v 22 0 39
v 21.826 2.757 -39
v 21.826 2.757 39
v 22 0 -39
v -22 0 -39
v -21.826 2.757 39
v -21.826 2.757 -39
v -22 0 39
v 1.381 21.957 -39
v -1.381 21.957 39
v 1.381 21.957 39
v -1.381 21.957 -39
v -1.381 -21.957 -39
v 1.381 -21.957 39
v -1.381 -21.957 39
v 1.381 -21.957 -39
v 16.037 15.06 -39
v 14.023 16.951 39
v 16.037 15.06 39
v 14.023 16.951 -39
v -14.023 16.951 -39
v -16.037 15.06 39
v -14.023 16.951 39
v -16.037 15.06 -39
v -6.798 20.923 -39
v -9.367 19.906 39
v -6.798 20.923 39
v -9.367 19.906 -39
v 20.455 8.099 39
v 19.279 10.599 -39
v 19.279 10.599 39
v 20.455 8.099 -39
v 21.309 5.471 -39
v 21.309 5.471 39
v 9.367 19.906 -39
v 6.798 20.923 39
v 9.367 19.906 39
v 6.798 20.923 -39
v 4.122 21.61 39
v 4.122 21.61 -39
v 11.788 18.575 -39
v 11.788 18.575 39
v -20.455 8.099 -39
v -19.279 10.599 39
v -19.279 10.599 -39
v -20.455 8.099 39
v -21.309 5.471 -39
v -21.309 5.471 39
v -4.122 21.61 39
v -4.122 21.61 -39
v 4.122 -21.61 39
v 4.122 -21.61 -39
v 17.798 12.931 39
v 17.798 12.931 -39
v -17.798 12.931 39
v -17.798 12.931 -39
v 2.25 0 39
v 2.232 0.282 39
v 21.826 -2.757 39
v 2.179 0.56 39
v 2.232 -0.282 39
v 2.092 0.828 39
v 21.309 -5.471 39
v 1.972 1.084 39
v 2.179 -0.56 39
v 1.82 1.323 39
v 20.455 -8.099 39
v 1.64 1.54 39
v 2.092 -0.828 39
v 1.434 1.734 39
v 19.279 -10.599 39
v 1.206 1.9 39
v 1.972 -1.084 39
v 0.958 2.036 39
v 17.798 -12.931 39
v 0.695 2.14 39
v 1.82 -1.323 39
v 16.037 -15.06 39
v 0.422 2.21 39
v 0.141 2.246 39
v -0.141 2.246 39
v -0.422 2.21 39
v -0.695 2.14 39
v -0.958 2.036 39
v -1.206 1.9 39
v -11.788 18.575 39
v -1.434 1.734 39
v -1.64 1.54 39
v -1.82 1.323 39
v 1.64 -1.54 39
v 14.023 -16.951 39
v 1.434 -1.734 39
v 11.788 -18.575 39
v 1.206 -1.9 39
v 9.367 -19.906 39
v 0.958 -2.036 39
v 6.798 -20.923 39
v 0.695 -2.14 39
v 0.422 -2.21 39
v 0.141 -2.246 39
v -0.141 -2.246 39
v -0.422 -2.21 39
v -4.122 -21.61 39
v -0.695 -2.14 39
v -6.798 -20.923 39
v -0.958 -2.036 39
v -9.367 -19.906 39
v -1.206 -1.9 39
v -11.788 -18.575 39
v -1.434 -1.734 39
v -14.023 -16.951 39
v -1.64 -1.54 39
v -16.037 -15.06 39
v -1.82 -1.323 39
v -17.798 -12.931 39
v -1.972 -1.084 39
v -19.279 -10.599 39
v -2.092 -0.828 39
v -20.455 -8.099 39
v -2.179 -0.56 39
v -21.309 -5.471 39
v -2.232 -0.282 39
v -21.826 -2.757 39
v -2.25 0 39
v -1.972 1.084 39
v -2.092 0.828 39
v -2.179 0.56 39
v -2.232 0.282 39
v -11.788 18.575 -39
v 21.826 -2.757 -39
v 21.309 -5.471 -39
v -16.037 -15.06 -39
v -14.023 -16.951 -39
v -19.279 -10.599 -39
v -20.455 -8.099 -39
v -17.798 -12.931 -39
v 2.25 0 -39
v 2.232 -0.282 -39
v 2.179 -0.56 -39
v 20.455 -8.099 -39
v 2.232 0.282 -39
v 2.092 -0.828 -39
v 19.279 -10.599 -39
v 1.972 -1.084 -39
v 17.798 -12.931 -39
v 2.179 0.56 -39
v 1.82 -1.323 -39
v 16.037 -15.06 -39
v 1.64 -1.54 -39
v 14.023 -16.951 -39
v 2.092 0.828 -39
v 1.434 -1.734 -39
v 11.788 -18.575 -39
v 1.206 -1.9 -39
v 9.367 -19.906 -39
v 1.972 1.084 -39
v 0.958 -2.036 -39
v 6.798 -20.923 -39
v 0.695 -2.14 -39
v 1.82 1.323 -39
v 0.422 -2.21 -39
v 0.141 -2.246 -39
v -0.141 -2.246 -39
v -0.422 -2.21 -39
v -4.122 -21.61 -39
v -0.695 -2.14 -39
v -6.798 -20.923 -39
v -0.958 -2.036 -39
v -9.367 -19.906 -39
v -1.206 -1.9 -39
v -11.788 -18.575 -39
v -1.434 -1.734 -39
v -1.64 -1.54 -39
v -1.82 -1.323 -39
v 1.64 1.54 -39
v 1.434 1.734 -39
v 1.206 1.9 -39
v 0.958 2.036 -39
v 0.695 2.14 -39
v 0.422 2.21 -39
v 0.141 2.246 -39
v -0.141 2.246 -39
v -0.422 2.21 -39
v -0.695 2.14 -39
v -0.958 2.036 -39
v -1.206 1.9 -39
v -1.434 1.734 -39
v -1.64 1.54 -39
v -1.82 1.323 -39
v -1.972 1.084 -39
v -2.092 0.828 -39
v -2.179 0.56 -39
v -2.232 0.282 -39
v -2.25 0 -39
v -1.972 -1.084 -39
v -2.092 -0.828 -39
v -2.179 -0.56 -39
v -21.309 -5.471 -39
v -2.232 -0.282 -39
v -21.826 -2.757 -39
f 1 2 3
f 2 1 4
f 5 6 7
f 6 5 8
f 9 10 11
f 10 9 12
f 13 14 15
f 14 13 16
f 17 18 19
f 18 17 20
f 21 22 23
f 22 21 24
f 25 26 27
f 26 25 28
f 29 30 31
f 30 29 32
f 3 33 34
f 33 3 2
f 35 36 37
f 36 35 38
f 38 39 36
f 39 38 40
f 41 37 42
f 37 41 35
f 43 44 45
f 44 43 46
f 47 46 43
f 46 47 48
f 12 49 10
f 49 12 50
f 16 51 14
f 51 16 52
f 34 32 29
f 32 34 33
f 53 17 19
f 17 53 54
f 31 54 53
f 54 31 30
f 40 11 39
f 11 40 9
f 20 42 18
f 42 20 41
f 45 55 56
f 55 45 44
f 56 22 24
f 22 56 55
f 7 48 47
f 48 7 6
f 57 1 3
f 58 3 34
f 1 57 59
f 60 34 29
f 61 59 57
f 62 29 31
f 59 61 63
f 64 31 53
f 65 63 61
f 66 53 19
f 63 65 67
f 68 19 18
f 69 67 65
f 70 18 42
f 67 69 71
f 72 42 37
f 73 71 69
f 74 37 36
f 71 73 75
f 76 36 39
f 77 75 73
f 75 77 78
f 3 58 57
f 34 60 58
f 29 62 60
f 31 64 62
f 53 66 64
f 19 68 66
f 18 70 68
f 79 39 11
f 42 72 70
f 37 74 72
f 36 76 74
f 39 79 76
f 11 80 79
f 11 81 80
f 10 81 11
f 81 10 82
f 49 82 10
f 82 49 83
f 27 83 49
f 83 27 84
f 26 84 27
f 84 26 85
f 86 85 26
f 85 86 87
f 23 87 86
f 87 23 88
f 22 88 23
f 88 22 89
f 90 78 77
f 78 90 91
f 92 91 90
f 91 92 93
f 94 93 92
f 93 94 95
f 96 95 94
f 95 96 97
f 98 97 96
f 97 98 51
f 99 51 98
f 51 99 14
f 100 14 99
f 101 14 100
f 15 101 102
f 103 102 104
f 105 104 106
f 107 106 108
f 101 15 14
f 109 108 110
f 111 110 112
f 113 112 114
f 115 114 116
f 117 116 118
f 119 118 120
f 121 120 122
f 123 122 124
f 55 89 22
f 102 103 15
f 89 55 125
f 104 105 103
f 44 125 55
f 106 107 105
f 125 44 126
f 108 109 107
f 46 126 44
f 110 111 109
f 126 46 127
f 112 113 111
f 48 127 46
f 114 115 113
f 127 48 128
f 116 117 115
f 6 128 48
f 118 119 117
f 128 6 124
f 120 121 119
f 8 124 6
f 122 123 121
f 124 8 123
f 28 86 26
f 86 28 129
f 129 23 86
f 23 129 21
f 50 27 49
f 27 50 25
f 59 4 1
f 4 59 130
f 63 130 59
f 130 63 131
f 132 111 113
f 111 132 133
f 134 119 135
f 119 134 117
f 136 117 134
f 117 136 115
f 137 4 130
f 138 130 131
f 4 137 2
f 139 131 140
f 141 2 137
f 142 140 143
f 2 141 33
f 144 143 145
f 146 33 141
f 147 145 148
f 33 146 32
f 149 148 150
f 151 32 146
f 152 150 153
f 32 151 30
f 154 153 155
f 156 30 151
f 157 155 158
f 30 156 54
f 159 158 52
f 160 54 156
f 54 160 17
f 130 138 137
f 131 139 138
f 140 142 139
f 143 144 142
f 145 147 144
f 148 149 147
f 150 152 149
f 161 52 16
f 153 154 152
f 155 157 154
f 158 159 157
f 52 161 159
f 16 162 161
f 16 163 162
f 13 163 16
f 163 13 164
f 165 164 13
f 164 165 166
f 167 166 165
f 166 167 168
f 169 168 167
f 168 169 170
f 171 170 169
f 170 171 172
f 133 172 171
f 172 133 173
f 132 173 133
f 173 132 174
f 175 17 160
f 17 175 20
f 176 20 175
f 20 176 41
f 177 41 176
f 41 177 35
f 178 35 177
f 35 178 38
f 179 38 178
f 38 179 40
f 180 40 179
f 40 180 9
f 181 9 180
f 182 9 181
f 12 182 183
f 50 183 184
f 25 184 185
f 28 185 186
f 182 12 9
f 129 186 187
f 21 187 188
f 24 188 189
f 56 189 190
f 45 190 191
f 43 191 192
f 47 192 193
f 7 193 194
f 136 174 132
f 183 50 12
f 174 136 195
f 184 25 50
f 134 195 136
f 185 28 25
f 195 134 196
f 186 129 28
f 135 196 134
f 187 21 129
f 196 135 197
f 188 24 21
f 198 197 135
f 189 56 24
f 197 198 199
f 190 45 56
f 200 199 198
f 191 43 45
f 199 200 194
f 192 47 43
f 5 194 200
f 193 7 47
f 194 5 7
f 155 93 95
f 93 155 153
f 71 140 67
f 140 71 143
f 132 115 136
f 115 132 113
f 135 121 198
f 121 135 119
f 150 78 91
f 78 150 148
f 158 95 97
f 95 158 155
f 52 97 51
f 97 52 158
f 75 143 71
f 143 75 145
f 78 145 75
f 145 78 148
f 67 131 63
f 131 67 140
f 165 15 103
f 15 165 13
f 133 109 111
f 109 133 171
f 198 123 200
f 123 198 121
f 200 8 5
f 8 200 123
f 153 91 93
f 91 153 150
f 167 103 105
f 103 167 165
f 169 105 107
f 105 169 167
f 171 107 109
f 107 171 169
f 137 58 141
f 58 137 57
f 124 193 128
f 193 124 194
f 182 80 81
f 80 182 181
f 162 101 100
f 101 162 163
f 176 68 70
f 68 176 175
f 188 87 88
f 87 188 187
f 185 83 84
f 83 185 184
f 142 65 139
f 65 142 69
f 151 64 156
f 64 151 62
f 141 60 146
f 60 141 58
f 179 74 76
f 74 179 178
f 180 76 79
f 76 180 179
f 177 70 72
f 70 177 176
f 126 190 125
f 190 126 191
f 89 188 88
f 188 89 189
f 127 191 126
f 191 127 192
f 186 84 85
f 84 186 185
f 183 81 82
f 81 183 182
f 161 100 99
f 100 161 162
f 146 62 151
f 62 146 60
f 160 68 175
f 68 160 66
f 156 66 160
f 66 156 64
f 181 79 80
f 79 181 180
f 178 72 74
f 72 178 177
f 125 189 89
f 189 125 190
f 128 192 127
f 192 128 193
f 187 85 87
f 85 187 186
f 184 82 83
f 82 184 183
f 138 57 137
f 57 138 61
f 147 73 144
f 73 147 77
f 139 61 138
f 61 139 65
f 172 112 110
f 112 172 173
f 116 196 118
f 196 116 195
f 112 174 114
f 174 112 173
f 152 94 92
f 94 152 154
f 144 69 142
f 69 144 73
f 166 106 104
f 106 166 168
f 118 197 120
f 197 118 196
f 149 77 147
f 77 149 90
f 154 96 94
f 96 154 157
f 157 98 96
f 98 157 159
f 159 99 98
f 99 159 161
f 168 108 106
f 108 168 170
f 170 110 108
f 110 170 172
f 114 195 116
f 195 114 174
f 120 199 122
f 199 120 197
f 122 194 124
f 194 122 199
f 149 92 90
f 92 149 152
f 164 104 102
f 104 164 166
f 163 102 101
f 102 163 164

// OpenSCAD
$fn = 50;


difference() {
	union() {
		translate(v = [0, 0, -39.0000000000]) {
			cylinder(h = 78, r = 22.0000000000);
		}
	}
	union() {
		translate(v = [0, 0, -100.0000000000]) {
			cylinder(h = 200, r = 2.2500000000);
		}
	}
}
